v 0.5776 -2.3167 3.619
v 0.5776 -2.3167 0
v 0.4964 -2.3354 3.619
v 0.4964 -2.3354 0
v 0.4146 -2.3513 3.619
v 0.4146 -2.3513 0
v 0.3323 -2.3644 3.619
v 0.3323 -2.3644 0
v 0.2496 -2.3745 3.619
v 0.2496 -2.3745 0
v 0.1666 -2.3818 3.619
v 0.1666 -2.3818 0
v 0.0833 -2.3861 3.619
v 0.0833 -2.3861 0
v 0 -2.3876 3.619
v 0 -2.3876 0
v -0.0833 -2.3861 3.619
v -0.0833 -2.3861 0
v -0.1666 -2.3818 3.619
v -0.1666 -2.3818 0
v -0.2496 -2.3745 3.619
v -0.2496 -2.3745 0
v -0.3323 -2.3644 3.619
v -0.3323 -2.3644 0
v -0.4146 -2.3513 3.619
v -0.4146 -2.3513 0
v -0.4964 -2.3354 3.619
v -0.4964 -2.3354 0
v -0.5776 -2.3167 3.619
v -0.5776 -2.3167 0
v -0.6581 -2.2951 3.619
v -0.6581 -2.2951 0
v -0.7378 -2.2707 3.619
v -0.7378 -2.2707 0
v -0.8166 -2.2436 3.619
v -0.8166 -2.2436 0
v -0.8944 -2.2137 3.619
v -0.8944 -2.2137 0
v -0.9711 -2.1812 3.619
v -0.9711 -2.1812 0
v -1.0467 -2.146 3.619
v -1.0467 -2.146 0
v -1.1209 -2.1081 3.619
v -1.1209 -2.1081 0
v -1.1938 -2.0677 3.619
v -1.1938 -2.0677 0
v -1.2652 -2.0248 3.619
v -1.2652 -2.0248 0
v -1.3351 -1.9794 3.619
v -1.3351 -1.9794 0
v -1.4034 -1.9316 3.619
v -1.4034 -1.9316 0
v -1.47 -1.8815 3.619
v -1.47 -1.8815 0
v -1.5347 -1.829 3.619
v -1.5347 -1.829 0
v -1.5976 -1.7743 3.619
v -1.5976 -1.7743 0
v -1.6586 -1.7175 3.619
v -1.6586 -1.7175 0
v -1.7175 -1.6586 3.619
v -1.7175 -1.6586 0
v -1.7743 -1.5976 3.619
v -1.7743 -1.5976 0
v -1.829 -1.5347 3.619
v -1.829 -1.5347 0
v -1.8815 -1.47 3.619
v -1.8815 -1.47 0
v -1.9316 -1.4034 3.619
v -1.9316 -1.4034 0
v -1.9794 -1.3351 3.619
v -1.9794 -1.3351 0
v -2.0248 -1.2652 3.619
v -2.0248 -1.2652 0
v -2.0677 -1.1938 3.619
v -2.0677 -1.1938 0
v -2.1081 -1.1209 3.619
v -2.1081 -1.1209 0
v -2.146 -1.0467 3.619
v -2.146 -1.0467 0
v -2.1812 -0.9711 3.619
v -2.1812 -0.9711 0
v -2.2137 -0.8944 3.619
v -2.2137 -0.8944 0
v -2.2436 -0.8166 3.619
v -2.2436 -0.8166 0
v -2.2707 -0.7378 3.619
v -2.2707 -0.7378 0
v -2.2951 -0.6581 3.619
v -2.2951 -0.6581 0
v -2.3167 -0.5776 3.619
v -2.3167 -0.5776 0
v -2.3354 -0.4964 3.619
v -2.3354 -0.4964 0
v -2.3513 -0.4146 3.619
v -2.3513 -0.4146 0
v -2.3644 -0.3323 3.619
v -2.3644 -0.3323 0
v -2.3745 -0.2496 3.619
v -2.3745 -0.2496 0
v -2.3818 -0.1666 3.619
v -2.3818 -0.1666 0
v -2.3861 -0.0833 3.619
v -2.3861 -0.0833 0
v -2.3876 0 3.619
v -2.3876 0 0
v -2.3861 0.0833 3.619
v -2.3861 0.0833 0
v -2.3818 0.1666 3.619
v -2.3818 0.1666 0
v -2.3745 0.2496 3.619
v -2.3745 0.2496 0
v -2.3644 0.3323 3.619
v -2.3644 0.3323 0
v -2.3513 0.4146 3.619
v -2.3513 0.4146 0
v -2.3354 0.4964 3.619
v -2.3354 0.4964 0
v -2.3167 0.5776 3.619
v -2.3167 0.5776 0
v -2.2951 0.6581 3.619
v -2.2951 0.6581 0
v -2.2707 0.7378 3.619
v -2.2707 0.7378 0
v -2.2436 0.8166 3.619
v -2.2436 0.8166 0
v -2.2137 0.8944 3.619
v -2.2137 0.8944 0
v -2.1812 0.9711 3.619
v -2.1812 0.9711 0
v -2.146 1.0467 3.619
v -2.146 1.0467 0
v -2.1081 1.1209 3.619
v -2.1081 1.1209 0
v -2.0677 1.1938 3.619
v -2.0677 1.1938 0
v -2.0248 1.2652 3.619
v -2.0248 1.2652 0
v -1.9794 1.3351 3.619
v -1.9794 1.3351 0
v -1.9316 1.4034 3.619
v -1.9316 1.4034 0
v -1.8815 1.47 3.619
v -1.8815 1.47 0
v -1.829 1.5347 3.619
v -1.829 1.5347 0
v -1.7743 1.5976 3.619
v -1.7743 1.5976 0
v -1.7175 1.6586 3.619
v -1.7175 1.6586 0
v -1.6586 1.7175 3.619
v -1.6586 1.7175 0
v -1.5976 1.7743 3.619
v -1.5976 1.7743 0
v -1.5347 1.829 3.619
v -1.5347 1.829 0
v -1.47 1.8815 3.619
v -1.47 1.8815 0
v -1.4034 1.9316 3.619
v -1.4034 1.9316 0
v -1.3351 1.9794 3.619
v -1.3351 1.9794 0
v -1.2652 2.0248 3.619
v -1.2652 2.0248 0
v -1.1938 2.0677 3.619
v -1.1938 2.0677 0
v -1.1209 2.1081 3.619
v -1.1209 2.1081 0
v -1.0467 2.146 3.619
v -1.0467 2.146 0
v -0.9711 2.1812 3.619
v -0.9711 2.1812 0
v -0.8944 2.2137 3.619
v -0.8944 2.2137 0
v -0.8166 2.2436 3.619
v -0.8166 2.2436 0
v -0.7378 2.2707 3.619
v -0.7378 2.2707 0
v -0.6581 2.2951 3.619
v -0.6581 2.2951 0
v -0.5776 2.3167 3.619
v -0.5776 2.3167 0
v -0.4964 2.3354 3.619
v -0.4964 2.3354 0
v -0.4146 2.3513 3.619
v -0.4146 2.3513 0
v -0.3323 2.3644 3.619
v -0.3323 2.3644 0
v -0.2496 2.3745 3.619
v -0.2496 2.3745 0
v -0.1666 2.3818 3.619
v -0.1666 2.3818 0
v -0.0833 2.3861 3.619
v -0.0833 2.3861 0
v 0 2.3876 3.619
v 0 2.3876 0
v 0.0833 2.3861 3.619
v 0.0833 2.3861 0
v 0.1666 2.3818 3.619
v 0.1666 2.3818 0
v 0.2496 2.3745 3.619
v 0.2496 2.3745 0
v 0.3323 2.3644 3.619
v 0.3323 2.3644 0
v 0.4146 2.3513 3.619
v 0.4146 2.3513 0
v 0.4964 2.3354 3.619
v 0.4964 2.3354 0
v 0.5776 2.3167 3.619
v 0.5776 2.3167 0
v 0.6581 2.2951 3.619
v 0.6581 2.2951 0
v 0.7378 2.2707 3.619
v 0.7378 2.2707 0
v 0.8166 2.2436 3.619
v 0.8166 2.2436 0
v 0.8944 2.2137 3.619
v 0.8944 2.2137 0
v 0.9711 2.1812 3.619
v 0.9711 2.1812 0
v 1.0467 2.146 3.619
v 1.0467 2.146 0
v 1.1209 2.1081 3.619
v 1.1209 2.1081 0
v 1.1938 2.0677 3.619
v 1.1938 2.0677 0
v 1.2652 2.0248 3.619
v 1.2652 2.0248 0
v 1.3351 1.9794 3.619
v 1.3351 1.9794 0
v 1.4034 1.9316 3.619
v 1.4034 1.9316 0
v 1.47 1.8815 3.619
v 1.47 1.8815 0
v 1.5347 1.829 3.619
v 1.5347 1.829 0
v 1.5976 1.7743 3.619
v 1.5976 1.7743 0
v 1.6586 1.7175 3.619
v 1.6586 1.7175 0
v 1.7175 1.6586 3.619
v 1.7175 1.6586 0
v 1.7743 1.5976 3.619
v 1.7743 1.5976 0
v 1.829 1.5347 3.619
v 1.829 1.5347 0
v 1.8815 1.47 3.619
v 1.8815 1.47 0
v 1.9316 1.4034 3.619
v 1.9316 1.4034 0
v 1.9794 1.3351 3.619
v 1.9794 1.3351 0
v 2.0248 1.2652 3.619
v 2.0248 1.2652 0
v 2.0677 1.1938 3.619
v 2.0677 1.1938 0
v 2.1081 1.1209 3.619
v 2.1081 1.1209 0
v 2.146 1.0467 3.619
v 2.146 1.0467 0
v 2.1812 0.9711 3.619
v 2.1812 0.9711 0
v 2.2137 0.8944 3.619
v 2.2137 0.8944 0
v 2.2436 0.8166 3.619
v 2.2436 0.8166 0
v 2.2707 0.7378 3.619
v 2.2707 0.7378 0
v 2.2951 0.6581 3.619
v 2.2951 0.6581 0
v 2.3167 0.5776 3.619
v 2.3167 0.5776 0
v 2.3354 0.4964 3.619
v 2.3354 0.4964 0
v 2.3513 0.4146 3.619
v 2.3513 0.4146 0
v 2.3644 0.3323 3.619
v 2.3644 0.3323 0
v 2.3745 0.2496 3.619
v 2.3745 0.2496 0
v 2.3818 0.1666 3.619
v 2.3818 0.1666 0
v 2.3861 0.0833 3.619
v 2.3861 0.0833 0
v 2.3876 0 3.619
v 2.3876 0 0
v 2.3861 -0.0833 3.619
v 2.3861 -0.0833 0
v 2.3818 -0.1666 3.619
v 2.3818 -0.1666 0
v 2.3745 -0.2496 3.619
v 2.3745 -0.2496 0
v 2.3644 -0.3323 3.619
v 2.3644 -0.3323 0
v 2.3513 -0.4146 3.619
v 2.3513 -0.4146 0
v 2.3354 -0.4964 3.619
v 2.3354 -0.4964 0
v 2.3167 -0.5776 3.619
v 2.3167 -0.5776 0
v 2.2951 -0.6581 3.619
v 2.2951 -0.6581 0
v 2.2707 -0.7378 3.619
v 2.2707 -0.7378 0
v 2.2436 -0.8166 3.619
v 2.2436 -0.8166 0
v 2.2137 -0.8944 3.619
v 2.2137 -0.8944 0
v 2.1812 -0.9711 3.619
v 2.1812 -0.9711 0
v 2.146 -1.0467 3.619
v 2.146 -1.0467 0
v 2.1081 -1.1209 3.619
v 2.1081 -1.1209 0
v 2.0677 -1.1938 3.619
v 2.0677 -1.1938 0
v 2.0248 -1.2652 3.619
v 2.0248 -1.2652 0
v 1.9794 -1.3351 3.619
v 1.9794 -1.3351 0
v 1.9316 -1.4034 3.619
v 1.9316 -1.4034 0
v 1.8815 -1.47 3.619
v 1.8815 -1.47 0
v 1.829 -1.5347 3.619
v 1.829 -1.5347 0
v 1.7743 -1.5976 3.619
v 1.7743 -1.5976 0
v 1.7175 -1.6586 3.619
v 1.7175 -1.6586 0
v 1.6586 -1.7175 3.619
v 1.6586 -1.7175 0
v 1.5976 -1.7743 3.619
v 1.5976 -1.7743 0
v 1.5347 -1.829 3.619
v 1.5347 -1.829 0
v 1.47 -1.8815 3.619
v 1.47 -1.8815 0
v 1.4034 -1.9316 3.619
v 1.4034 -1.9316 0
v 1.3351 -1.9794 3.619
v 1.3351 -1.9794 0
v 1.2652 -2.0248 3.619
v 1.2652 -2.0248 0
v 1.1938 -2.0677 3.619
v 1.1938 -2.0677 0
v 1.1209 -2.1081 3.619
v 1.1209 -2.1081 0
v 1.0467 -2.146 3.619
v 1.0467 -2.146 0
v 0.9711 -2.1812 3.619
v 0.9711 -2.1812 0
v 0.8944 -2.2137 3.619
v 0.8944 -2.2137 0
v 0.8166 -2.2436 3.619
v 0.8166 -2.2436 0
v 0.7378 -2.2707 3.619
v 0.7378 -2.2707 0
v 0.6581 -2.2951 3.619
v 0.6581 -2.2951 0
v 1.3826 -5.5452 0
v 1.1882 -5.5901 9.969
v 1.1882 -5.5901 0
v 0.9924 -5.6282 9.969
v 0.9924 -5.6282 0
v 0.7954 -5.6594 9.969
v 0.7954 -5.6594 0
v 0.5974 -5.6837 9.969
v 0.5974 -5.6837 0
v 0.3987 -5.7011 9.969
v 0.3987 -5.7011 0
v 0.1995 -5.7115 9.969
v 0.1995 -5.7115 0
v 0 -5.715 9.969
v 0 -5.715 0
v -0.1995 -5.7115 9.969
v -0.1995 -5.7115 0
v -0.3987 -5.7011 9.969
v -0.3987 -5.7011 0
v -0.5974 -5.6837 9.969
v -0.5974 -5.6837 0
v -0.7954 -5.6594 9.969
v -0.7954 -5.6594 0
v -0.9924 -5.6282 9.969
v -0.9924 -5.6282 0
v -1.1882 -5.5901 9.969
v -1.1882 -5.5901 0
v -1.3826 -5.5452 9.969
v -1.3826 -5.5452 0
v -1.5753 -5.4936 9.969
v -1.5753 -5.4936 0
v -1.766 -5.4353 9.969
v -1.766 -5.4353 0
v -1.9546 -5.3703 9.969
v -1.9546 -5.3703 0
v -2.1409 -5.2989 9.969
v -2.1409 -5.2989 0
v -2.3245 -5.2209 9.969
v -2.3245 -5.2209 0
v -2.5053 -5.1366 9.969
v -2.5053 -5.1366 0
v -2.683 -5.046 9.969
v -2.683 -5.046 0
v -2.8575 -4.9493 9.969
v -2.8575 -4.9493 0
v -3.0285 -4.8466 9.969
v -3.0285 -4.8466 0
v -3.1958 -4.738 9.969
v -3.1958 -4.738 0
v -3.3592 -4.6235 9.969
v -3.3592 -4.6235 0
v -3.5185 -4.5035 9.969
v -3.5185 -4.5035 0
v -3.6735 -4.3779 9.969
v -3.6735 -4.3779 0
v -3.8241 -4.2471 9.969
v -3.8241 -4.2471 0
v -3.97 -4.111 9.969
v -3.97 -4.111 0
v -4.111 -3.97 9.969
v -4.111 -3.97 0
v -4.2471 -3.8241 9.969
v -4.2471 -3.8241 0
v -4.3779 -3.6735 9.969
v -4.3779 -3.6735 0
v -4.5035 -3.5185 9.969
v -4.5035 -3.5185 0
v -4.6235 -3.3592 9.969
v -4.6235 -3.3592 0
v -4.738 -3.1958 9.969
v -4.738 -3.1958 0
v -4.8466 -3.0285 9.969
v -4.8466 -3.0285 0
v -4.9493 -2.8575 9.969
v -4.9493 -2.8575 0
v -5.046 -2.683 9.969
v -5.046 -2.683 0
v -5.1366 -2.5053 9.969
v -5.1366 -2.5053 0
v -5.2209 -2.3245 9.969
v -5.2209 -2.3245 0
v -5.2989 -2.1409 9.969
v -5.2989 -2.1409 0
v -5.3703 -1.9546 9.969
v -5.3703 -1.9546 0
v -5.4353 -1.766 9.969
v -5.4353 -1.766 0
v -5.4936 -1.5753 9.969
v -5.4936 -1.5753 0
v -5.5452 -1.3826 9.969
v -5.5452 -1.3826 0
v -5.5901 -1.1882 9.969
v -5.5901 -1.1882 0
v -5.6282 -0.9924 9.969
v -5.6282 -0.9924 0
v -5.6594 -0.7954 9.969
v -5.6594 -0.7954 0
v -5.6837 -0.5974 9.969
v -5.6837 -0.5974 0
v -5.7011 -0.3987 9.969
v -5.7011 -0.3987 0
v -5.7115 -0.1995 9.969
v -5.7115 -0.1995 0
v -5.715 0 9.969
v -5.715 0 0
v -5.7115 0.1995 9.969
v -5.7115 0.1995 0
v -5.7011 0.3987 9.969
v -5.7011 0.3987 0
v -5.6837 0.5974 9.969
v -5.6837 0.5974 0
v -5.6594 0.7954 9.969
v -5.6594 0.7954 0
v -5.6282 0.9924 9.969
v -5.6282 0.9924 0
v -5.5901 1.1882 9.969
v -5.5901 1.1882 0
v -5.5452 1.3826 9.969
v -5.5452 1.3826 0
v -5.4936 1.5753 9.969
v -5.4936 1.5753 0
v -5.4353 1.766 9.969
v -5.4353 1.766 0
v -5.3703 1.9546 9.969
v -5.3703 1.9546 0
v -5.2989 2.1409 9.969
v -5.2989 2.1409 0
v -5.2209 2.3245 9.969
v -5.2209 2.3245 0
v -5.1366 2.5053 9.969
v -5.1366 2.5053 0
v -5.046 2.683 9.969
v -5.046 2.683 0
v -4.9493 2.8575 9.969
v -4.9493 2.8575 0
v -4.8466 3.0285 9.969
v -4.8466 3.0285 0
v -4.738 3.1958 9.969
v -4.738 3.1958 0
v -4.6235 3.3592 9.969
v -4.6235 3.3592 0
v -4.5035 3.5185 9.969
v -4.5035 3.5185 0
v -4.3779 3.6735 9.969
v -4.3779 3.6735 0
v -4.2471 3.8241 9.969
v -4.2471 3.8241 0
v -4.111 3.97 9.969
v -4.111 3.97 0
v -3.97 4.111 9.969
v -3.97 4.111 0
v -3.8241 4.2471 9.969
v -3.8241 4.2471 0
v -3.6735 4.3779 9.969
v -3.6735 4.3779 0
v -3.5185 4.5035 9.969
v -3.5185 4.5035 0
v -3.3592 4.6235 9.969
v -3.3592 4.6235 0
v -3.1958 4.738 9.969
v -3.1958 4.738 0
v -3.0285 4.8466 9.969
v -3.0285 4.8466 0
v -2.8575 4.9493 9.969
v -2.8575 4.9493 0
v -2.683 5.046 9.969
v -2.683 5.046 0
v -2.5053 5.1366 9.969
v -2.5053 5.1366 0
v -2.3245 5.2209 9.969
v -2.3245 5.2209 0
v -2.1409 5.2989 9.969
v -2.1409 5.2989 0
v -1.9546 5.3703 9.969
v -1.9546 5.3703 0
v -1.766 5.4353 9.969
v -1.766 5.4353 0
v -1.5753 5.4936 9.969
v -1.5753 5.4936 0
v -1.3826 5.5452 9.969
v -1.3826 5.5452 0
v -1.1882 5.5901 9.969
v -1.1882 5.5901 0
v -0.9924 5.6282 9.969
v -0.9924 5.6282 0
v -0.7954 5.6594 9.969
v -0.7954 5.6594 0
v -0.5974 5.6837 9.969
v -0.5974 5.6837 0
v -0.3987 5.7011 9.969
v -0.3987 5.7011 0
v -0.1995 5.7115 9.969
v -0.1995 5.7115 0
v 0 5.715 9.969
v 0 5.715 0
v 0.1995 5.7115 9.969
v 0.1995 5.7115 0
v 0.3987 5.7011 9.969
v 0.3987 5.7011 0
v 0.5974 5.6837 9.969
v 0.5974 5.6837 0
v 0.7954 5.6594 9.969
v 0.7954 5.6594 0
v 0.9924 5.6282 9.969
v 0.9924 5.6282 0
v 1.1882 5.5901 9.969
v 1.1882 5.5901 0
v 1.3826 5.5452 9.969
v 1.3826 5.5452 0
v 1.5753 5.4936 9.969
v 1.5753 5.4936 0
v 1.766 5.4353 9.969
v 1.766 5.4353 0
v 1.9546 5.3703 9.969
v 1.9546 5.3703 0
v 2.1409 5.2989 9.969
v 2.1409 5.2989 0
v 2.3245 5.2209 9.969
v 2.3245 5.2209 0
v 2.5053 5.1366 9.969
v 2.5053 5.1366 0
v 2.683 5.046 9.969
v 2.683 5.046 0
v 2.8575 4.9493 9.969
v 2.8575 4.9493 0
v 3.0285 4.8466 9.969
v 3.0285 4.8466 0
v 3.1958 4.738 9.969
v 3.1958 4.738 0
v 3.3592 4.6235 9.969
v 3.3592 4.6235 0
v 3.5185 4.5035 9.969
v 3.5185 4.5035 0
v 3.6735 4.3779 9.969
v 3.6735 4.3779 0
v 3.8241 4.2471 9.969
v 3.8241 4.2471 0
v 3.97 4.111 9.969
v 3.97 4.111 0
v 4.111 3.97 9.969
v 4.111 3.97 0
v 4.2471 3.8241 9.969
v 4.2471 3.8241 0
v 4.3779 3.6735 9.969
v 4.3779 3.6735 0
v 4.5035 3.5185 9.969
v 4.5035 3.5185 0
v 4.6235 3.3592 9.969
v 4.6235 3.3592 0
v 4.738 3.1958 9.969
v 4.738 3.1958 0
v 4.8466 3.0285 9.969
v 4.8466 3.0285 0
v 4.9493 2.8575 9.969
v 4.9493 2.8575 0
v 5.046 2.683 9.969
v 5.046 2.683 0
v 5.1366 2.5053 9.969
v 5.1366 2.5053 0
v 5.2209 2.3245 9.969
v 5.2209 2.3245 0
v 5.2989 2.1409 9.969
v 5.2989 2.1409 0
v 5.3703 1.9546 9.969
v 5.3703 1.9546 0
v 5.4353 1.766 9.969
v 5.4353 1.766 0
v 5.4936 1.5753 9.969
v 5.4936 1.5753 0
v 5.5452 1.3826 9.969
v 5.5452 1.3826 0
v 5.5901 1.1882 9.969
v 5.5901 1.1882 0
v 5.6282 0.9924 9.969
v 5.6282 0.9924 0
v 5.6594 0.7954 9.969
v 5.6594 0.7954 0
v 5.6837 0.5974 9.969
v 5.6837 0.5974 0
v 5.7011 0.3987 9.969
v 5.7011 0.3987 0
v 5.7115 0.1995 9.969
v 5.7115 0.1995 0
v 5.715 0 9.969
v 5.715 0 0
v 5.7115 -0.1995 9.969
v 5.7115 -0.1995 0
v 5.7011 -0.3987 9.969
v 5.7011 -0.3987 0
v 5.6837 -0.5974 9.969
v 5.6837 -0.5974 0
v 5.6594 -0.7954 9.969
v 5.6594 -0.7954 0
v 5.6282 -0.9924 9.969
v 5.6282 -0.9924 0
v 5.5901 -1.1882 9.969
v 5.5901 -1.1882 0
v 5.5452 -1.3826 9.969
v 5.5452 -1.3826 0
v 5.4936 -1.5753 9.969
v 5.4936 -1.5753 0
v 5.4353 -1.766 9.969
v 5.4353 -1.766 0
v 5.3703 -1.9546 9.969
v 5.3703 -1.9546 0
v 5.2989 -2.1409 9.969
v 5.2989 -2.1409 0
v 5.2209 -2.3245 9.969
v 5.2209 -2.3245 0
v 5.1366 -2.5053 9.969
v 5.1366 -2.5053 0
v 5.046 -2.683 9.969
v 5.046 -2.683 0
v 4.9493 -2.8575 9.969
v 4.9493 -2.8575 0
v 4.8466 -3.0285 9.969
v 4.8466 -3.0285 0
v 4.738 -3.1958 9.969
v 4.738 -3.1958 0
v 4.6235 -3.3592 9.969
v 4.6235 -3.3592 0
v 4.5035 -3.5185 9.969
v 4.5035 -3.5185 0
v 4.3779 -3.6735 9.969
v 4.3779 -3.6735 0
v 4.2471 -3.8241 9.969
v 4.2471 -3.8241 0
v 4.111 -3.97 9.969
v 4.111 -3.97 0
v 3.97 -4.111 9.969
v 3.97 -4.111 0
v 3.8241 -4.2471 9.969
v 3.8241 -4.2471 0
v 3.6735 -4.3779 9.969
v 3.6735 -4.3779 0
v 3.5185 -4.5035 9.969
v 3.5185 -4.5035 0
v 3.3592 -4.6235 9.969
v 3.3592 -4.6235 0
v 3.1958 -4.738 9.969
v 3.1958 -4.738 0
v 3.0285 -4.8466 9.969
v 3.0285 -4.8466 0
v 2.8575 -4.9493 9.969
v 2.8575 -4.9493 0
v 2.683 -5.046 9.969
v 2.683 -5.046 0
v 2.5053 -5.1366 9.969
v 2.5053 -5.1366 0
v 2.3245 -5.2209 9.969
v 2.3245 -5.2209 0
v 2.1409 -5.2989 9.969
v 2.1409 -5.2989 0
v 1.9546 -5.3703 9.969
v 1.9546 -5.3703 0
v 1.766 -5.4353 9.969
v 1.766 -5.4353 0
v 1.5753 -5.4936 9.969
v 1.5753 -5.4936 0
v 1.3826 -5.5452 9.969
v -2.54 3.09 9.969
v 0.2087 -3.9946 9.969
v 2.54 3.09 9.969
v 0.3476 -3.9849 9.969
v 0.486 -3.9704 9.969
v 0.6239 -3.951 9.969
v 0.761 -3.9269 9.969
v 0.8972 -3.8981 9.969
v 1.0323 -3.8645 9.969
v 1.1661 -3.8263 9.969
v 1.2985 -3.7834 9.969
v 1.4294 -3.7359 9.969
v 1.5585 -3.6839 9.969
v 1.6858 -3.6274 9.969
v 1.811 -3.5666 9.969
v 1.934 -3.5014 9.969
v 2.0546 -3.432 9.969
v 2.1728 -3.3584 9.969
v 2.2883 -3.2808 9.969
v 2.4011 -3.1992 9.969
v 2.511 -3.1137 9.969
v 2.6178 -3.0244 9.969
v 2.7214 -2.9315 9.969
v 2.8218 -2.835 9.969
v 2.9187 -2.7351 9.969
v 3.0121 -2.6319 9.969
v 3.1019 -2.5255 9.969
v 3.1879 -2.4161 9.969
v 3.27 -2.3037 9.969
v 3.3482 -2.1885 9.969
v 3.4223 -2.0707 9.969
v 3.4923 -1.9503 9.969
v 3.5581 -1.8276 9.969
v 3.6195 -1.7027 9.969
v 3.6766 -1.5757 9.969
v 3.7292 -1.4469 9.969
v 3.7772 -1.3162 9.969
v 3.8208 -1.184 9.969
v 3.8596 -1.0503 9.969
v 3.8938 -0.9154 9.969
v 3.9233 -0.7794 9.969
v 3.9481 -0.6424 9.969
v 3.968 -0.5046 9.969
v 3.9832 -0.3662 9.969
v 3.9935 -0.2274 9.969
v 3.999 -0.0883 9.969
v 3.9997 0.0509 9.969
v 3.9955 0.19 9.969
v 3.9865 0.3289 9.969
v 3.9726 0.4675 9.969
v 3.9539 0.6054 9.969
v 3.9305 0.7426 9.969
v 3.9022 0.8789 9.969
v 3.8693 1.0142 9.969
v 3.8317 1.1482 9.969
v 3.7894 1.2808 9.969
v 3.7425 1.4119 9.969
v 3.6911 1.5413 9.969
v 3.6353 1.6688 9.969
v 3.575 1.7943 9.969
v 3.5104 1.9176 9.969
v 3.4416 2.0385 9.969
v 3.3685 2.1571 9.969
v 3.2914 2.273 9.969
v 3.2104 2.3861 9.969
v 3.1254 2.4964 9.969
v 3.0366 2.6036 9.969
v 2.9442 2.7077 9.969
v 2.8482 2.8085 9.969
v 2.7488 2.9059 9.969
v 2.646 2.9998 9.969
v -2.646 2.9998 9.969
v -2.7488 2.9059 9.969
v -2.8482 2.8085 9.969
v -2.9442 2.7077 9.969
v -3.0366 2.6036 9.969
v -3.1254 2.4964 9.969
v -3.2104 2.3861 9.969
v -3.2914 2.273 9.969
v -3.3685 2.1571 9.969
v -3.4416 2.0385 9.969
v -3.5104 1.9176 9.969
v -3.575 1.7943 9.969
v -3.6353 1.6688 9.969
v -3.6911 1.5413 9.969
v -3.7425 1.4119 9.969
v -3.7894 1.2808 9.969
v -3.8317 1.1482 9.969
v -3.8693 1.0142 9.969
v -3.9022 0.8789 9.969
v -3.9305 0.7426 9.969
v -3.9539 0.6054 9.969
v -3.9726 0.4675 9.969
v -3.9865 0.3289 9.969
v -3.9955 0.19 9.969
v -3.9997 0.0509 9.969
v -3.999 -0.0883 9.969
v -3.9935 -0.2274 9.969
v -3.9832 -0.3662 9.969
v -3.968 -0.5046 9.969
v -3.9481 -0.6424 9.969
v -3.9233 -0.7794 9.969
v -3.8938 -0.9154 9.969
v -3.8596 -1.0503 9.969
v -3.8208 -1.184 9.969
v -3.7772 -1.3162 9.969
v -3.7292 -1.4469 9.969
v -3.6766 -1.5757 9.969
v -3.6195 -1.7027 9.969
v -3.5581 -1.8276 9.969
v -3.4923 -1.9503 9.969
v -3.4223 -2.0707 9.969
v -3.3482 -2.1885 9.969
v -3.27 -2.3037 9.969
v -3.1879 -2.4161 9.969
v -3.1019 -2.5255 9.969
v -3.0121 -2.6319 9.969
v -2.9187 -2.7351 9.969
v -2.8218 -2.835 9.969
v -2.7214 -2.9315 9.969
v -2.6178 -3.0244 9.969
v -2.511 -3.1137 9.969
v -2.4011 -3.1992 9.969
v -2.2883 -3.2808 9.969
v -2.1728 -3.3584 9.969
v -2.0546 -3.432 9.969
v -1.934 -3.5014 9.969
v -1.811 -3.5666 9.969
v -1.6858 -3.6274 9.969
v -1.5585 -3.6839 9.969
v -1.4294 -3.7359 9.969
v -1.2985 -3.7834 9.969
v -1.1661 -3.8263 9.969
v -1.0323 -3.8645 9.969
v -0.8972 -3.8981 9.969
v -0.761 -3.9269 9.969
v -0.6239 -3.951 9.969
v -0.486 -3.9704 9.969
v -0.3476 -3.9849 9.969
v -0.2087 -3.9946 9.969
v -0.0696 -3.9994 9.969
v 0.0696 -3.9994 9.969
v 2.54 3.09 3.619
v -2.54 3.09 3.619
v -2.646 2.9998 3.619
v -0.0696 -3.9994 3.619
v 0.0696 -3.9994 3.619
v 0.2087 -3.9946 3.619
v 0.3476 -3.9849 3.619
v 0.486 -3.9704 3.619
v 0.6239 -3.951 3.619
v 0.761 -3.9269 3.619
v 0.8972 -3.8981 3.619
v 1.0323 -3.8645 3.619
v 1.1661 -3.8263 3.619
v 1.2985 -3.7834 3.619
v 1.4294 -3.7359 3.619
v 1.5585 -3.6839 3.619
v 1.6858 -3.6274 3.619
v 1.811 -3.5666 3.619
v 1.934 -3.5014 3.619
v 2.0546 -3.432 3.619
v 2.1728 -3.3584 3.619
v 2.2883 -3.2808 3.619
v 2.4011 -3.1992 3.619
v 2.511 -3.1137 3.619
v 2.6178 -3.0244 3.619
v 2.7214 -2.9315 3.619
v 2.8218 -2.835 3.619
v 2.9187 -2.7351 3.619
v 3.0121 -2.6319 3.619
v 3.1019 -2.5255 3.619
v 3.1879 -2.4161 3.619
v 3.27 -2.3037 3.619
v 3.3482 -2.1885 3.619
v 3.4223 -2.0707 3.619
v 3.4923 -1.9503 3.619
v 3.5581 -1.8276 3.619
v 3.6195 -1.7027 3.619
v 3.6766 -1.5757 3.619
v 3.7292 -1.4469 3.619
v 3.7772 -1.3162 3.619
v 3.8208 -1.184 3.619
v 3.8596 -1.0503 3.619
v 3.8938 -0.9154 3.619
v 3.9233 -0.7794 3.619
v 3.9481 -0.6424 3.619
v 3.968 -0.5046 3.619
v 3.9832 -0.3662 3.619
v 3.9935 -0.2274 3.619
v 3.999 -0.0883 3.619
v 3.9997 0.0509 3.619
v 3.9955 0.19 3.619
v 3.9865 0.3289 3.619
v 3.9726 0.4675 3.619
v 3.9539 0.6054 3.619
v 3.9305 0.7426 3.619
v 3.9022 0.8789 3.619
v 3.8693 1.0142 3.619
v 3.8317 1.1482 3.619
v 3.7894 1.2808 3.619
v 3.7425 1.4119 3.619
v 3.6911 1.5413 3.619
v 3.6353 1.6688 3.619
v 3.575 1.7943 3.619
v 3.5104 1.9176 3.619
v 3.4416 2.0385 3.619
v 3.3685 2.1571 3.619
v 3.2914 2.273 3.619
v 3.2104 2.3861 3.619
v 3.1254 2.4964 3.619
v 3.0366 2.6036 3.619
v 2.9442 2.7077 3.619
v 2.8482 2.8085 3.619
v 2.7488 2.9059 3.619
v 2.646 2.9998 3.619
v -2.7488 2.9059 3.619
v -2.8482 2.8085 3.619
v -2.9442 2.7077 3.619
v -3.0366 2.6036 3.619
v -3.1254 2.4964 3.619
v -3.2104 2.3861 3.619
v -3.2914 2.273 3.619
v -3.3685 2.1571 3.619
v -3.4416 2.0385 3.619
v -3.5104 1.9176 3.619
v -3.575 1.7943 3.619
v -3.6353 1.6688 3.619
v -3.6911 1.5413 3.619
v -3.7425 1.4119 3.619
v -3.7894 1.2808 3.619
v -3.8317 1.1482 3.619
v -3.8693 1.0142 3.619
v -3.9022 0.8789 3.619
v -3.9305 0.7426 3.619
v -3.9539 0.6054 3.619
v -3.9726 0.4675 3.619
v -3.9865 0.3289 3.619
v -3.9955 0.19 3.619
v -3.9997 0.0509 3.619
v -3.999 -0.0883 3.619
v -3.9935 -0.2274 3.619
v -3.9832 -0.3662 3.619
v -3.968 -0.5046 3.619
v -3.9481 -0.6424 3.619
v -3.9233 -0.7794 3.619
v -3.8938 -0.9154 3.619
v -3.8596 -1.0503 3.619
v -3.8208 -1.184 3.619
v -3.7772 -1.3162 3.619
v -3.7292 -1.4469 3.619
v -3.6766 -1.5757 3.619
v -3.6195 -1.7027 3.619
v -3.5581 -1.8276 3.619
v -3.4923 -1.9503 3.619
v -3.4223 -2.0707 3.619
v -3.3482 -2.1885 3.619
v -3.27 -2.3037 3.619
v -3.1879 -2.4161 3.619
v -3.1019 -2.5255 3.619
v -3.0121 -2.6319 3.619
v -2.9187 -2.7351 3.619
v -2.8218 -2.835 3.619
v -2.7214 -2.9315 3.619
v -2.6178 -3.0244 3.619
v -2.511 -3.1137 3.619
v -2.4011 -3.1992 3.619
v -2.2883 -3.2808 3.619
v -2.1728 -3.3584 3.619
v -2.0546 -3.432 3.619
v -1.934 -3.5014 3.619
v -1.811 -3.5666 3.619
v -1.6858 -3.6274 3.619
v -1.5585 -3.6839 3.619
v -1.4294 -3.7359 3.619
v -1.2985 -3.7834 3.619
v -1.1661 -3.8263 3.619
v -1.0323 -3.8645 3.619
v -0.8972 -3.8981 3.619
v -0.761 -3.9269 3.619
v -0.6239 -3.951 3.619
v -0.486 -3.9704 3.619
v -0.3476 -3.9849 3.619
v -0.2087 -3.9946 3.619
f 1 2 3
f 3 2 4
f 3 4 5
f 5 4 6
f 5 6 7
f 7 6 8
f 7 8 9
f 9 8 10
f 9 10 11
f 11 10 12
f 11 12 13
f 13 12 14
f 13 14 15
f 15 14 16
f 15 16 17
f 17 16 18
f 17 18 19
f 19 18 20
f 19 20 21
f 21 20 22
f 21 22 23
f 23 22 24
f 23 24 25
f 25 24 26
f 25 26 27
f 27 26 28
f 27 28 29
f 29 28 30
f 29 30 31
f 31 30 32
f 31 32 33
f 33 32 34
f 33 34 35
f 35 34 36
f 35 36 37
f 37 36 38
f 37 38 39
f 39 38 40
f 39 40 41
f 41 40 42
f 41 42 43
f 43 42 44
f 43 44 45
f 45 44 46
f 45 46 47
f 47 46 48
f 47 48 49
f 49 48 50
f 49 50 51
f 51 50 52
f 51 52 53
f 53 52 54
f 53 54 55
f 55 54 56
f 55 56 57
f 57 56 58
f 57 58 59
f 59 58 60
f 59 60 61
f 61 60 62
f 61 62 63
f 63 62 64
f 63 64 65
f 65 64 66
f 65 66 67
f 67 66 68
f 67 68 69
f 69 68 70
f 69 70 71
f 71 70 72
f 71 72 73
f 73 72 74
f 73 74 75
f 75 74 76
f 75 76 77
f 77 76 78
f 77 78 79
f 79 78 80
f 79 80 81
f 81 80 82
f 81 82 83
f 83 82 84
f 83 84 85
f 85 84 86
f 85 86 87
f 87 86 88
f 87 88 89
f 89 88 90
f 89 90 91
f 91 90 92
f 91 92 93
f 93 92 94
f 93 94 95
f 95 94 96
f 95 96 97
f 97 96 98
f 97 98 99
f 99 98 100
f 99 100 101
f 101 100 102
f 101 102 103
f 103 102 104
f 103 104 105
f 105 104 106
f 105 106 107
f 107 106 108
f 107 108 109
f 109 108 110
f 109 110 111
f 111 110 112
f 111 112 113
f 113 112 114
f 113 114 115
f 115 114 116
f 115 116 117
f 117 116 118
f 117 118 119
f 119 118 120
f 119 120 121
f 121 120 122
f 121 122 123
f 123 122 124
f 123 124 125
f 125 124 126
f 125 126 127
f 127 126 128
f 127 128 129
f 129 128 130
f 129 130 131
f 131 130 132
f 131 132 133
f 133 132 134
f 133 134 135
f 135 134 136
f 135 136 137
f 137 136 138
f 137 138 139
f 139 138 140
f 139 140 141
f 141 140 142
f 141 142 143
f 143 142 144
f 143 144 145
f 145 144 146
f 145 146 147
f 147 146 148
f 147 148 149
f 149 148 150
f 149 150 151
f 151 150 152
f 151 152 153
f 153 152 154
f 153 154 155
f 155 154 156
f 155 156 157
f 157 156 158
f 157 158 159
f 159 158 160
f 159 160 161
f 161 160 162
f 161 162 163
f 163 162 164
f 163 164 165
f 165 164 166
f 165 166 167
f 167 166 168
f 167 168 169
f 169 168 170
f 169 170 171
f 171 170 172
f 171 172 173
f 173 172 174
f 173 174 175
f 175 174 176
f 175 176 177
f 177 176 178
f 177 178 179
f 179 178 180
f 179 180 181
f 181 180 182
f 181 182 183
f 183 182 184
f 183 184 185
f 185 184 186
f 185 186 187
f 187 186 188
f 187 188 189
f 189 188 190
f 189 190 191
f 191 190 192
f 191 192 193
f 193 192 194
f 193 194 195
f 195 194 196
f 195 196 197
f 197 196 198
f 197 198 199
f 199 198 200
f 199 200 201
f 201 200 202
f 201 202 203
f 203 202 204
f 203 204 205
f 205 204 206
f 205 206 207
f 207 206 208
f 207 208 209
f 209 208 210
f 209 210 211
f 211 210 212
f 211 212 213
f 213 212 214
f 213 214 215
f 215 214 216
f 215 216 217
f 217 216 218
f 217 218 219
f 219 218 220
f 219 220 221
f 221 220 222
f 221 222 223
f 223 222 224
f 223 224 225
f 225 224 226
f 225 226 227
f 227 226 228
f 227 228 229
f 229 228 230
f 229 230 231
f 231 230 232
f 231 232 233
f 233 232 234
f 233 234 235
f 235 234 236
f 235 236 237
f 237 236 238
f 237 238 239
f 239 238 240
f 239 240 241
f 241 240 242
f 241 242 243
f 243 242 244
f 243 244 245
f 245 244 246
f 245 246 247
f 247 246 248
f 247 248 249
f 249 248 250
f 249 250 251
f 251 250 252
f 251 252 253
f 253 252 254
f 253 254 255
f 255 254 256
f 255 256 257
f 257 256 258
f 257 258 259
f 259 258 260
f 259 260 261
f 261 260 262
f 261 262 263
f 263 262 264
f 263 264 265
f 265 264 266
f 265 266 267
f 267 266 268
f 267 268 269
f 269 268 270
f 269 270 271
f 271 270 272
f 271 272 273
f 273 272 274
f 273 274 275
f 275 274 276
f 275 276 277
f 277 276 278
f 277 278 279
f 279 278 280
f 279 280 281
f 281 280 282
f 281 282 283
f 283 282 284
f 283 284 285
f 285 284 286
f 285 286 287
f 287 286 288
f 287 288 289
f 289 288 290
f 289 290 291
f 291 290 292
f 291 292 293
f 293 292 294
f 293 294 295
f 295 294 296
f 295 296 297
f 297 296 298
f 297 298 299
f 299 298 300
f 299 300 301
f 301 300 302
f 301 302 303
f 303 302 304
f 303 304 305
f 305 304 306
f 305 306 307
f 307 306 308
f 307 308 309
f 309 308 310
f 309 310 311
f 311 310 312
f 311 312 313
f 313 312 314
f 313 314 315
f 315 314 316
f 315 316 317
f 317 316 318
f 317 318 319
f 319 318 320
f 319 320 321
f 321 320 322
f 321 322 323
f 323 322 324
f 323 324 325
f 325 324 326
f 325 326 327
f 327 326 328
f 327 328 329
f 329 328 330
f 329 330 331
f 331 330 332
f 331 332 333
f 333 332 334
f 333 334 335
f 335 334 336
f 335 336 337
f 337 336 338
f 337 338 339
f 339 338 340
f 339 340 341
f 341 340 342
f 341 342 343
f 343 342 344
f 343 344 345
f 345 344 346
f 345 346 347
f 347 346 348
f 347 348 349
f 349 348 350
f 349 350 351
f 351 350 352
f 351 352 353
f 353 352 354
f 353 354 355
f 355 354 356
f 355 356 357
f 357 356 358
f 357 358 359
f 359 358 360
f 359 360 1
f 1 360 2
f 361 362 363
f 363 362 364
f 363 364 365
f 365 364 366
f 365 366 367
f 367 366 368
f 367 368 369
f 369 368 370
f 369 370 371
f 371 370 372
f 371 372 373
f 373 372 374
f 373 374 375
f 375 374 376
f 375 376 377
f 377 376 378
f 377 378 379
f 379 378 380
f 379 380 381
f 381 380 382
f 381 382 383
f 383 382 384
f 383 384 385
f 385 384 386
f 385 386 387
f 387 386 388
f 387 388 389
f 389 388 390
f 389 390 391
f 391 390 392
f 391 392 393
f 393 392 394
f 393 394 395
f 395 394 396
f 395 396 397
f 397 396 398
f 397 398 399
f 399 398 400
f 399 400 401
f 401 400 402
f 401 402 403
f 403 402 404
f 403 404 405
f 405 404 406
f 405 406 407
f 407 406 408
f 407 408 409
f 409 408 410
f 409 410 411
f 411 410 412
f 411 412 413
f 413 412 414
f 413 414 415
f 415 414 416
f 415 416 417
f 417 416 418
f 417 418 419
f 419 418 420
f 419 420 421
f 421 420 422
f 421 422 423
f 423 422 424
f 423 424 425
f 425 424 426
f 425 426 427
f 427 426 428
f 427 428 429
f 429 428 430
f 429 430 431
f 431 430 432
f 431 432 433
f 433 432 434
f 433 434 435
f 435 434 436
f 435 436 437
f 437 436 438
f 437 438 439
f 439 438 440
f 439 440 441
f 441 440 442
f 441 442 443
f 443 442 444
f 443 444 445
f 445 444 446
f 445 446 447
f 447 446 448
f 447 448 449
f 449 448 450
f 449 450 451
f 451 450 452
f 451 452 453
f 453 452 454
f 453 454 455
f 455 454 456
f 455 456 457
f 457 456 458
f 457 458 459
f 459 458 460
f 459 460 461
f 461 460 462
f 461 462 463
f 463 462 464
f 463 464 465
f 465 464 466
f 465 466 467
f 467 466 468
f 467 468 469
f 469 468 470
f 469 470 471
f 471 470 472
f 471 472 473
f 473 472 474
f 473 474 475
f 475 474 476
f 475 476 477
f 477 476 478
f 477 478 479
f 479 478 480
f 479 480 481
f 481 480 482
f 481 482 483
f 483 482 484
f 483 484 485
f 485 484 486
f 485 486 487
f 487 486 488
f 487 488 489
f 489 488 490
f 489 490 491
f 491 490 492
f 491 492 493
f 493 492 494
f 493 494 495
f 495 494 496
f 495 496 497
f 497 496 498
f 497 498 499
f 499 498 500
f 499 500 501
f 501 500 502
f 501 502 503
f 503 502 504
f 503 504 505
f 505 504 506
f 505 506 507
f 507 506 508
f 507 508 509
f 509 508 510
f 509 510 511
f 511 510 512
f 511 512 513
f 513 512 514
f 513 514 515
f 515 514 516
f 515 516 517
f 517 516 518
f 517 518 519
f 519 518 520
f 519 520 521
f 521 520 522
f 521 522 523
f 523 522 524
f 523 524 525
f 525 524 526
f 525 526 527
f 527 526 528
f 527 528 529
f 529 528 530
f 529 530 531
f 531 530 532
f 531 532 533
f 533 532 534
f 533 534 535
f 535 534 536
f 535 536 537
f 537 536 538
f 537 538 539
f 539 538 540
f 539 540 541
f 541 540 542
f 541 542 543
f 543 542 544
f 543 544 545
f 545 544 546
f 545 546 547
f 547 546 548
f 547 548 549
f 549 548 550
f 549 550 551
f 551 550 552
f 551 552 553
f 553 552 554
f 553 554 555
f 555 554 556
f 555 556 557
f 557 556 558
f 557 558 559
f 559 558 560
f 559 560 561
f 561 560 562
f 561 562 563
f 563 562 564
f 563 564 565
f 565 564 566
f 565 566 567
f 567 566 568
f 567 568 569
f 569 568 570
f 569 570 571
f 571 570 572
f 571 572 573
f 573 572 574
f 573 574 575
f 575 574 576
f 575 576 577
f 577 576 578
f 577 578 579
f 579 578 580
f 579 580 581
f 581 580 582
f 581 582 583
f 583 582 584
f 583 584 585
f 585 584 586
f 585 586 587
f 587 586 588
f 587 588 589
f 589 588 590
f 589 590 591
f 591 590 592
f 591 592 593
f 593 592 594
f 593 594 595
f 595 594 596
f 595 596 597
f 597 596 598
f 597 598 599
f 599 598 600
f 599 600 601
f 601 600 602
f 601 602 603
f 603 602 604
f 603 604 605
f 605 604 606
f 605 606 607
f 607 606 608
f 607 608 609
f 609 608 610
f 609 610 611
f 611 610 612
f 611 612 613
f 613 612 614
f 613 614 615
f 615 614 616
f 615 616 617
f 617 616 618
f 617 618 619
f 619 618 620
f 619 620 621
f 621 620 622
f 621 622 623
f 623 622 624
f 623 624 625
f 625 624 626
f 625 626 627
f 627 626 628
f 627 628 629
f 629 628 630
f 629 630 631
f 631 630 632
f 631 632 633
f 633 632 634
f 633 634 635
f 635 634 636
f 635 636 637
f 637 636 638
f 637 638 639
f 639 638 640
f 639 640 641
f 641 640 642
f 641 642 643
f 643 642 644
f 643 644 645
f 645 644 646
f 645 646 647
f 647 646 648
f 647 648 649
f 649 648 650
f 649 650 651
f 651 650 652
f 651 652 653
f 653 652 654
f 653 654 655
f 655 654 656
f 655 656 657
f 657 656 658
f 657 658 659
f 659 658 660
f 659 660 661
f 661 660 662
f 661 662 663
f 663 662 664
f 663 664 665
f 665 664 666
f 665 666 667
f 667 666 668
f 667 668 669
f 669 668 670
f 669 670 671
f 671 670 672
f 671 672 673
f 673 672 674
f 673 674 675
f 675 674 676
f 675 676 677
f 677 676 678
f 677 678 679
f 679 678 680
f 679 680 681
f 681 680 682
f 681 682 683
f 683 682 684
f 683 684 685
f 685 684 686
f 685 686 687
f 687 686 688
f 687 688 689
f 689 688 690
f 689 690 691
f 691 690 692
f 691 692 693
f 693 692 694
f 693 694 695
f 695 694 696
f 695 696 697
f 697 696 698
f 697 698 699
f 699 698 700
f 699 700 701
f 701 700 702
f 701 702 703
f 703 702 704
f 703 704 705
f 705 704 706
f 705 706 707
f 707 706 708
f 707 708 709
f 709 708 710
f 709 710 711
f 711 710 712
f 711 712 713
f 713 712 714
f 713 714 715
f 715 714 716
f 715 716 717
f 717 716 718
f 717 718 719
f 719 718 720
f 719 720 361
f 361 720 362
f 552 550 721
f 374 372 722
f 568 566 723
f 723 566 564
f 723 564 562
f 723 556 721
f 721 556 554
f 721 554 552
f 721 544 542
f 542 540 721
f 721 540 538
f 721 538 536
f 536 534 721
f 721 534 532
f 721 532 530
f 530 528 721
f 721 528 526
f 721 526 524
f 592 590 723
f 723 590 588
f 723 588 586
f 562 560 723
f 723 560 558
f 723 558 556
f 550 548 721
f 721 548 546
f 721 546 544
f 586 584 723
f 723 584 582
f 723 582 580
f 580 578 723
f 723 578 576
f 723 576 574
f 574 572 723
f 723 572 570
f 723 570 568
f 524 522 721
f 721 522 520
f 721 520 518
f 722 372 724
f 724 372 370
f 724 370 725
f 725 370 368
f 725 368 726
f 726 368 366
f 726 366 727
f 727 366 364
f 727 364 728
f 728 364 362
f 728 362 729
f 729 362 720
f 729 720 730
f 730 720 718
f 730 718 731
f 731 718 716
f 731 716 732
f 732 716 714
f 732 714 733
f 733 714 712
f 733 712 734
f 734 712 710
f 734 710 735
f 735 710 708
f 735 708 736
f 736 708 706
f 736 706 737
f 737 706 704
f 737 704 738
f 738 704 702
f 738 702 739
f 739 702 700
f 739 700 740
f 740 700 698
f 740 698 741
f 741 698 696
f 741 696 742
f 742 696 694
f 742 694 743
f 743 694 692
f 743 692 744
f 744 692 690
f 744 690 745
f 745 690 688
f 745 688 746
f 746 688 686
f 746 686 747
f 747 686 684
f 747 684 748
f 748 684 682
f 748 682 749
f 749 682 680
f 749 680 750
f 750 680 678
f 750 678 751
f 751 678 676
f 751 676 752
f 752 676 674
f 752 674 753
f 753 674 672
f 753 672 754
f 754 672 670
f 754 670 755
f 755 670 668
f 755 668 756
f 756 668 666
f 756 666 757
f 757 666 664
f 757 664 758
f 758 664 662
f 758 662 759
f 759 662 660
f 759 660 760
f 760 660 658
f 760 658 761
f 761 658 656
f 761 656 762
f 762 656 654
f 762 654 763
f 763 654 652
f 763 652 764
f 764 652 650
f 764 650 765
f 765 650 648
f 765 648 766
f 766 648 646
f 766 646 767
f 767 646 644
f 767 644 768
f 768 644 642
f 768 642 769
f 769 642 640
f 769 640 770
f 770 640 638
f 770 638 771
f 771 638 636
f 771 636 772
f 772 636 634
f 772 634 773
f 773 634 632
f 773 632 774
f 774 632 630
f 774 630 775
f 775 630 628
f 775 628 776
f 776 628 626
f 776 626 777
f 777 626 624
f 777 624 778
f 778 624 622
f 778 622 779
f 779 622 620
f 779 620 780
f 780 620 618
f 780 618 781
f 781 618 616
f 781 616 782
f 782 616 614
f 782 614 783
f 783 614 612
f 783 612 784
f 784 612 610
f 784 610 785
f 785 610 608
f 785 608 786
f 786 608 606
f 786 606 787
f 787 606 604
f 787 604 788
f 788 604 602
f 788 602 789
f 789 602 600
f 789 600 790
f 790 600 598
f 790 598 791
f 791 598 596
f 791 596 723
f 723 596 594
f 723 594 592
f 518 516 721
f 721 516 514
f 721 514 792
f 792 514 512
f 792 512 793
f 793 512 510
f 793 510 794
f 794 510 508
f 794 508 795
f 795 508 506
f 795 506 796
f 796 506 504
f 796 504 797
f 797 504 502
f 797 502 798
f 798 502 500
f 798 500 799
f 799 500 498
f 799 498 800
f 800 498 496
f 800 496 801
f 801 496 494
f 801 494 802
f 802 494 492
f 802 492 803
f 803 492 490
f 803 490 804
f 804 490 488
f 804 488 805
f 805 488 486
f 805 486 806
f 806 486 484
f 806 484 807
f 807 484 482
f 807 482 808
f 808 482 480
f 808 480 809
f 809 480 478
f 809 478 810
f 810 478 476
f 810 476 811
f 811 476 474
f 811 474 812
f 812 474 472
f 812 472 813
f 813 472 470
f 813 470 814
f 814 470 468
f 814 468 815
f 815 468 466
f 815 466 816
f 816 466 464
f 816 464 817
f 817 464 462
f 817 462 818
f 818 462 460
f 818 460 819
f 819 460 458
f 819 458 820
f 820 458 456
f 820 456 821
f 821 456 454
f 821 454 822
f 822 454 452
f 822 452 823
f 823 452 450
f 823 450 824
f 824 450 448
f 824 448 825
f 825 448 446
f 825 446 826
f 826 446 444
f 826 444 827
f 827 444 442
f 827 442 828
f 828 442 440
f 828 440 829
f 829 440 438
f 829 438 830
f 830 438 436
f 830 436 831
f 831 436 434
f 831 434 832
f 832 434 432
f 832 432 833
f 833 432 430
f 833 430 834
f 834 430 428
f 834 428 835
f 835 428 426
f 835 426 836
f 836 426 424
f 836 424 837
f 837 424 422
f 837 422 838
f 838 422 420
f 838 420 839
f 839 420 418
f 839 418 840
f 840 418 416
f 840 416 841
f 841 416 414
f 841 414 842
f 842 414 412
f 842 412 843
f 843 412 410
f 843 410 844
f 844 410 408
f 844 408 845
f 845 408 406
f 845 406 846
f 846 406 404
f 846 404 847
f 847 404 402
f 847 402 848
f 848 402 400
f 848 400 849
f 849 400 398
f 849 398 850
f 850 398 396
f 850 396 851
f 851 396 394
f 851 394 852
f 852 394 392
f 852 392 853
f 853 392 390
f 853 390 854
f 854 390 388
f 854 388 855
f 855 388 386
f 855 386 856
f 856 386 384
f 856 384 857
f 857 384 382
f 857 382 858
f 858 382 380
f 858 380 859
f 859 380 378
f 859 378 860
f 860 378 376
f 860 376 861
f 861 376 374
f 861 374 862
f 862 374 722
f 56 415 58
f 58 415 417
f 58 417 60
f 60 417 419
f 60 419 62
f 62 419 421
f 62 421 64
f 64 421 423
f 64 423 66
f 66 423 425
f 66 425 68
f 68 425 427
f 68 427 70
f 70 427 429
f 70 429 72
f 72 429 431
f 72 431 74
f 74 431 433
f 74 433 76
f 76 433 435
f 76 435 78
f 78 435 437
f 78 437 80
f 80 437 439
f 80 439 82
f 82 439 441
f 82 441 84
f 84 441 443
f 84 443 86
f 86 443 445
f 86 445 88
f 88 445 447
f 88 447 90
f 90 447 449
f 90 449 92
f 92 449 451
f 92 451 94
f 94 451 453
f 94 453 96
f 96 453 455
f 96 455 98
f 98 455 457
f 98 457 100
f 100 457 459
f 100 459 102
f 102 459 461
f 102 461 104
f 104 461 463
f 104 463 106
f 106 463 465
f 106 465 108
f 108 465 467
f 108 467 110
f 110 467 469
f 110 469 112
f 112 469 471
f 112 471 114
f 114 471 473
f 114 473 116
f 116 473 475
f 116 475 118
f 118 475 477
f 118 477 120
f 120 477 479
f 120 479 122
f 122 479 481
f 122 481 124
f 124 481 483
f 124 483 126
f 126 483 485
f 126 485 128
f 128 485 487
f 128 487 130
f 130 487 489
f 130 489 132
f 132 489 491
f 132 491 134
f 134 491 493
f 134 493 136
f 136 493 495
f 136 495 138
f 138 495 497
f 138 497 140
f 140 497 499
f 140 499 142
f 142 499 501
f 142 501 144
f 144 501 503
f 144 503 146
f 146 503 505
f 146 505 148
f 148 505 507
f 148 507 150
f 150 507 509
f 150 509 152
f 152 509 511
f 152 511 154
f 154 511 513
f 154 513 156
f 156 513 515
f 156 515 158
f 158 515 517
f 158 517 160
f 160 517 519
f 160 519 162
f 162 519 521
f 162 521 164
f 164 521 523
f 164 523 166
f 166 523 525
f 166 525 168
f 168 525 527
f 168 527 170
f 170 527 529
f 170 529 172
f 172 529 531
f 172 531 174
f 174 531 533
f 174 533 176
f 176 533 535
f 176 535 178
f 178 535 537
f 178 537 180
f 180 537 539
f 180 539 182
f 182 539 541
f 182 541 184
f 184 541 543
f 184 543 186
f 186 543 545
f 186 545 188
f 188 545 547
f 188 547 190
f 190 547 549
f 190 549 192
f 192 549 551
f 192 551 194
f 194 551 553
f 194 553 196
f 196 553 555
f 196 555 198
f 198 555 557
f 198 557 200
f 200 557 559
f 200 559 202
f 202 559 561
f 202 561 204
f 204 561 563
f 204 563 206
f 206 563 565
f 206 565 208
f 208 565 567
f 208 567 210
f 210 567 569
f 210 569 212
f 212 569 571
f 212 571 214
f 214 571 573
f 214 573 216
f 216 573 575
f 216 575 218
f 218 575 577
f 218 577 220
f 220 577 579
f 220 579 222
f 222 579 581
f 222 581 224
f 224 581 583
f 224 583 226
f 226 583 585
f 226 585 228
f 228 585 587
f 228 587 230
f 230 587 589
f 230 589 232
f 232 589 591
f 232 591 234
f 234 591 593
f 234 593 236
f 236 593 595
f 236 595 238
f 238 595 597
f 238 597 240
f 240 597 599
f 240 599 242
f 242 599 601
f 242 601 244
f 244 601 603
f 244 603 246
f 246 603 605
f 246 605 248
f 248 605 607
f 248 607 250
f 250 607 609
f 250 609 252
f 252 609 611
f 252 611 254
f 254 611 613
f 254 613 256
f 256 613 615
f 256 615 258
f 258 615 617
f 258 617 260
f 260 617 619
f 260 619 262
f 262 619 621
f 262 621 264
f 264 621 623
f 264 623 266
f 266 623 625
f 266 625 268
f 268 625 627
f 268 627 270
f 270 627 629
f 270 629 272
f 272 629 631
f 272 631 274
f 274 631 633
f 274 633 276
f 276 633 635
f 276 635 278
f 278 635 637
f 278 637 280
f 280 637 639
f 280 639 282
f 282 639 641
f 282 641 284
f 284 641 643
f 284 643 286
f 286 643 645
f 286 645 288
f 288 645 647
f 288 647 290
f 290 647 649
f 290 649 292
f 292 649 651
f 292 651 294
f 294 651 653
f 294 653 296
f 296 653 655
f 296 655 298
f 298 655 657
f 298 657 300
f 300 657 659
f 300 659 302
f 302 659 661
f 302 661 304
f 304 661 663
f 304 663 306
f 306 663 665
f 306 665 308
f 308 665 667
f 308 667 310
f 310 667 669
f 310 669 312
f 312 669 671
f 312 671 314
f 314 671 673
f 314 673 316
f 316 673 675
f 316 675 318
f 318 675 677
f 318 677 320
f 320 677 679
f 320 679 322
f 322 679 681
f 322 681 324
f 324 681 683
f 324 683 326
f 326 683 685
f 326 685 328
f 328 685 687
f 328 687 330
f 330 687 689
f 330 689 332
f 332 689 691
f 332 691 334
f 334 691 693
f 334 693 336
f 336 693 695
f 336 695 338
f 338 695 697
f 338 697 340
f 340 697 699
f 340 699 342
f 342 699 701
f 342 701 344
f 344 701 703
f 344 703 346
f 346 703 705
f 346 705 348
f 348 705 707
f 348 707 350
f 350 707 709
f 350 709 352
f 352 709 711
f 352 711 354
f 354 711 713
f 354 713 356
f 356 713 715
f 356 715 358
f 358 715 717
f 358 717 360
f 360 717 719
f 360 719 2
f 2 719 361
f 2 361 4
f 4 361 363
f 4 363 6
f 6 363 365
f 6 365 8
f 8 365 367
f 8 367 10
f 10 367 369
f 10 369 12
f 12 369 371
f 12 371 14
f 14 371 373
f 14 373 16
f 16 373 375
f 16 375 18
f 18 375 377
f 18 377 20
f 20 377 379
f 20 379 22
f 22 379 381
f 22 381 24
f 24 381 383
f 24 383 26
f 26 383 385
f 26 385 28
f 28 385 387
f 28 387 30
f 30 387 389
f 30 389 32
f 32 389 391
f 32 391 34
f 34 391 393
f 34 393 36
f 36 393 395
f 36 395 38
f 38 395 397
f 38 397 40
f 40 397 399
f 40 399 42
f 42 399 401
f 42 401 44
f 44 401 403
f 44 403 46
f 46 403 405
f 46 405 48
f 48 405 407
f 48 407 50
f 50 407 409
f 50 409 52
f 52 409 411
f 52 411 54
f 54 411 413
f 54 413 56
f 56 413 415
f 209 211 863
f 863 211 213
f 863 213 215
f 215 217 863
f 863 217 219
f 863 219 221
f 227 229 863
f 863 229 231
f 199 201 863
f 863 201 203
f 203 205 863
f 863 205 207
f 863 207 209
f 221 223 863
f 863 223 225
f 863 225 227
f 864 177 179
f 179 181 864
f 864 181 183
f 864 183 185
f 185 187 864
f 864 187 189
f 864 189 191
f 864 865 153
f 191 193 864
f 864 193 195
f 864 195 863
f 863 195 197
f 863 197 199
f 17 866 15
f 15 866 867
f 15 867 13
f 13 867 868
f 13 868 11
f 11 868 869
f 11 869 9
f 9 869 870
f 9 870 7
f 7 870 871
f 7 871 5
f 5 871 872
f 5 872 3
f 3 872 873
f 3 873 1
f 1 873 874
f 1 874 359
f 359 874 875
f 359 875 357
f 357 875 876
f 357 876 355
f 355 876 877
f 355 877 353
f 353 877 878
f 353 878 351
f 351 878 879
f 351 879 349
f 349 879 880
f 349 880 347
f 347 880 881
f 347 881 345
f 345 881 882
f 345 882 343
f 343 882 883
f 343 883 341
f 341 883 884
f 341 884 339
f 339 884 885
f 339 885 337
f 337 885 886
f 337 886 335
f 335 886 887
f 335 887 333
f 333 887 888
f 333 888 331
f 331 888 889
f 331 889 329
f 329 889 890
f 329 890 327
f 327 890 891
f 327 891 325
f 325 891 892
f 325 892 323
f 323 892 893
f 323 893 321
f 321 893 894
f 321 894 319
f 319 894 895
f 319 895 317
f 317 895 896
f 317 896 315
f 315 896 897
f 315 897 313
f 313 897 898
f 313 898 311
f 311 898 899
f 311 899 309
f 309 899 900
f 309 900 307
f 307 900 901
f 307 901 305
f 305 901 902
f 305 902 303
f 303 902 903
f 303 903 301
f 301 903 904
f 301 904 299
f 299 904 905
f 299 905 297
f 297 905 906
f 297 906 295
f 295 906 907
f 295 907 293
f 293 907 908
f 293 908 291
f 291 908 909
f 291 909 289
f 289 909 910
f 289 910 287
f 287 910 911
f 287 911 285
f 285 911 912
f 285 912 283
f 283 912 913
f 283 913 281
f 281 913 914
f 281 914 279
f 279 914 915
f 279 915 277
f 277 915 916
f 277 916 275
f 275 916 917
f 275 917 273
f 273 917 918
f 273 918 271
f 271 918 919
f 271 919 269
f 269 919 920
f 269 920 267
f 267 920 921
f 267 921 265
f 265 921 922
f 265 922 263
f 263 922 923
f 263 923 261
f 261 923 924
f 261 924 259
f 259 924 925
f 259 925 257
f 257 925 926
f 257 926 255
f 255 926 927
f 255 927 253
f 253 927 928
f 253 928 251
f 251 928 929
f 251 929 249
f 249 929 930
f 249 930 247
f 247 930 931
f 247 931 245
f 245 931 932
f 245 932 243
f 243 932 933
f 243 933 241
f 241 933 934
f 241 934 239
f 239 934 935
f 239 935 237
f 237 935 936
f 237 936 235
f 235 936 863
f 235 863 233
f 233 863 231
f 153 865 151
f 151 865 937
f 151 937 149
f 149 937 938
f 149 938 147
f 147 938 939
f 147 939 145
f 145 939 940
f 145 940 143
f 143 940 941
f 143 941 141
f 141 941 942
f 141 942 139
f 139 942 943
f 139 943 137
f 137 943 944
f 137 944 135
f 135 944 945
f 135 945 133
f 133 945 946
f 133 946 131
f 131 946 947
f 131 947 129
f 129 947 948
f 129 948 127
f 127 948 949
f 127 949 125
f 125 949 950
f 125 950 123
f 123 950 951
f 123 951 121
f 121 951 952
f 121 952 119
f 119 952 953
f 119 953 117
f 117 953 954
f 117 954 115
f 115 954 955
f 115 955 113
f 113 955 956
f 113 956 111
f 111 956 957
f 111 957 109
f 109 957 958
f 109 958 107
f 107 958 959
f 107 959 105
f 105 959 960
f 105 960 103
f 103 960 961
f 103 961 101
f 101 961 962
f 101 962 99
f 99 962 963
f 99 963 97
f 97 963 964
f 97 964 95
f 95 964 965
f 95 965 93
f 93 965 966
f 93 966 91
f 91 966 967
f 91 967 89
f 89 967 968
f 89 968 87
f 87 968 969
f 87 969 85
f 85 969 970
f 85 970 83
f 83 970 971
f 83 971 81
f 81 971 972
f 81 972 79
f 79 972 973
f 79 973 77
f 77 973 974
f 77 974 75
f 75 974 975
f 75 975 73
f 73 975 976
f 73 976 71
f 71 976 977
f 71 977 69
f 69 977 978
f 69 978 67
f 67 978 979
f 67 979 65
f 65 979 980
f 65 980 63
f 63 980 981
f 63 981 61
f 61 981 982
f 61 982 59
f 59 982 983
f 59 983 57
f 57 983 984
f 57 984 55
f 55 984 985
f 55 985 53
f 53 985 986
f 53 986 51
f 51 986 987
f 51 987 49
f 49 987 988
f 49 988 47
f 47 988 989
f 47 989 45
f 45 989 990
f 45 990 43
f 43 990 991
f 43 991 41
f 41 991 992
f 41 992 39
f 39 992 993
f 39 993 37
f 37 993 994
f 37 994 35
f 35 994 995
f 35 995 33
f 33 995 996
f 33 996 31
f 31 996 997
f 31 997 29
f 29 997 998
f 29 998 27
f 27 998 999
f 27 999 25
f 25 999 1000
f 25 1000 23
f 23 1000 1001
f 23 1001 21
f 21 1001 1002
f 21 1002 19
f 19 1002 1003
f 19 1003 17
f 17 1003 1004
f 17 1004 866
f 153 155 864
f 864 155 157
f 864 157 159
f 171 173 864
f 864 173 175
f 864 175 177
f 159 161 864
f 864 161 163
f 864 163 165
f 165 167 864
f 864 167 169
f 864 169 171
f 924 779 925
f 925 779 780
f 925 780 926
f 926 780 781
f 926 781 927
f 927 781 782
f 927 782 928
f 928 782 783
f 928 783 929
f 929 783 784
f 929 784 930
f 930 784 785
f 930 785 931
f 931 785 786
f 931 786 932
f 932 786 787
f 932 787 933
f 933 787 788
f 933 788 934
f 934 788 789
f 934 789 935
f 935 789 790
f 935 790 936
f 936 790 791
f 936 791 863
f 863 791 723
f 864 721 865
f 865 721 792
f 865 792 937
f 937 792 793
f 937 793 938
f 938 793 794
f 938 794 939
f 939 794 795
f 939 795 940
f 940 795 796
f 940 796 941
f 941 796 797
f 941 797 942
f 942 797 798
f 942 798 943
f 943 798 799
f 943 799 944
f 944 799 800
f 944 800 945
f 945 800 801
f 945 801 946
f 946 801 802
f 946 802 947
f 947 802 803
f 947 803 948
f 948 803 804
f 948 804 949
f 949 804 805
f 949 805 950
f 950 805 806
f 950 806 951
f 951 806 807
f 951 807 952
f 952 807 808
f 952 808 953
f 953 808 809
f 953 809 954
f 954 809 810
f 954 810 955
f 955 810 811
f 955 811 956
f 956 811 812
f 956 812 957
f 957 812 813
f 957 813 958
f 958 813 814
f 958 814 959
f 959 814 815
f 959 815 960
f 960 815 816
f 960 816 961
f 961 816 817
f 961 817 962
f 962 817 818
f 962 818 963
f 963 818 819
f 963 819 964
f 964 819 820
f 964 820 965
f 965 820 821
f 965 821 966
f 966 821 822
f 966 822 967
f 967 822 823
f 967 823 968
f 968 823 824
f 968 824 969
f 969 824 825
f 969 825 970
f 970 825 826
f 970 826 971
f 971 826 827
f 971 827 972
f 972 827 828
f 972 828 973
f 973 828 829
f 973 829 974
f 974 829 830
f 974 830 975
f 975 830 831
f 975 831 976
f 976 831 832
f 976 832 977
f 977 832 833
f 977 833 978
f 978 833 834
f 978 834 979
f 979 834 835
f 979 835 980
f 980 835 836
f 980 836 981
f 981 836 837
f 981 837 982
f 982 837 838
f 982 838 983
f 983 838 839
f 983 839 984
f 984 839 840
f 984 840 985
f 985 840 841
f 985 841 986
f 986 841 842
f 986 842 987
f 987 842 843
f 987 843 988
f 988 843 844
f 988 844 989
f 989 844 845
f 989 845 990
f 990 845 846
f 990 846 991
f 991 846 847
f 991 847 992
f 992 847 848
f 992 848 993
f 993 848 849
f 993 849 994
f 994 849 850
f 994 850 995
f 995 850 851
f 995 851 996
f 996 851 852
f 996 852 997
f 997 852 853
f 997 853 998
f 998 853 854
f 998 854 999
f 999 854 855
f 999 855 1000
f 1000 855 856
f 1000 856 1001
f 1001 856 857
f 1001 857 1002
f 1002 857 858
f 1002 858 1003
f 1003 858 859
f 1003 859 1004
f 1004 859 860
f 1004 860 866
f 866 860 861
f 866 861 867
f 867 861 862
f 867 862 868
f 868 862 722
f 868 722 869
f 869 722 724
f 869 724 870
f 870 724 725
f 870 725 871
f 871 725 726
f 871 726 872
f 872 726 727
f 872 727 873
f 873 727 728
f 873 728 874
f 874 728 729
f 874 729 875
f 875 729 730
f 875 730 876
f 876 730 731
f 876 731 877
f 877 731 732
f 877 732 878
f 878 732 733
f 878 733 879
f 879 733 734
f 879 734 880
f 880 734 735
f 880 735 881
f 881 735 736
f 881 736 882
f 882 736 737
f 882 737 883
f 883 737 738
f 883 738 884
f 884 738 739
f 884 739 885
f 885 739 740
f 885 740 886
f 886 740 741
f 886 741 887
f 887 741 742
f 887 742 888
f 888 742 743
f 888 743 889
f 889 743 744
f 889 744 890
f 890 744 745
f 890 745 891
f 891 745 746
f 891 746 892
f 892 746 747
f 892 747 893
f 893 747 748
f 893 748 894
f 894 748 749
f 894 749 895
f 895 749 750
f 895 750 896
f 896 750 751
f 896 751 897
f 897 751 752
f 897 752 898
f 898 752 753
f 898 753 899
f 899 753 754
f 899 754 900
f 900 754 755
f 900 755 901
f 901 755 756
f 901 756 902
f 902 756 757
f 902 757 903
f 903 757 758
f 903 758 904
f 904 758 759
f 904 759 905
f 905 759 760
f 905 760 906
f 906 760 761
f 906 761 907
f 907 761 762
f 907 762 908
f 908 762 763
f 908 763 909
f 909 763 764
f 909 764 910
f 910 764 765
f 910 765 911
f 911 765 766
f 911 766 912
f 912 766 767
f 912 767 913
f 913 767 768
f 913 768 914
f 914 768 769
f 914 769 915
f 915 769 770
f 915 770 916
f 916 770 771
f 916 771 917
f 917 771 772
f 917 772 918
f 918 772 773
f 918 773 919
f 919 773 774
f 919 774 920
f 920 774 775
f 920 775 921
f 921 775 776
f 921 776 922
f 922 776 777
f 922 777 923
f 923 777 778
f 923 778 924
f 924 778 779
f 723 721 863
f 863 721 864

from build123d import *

# Parameters (mm, degrees)
SKETCH1_R           = 5.715
BOSS_EXTRUDE1_DEPTH = 9.968992
SKETCH2_R           = 2.3876
CUT_EXTRUDE1_DEPTH  = 10.968992
SKETCH3_R           = 4
CUT_EXTRUDE2_DEPTH  = 6.35
BOSS_EXTRUDE2_DEPTH = 6.35


with BuildPart() as part:
    # Sketch1 → Boss-Extrude1 (new body)
    with BuildSketch(Plane.XY):
        Circle(SKETCH1_R)
    extrude(amount=BOSS_EXTRUDE1_DEPTH)

    # Sketch2 → Cut-Extrude1 (cut, through all)
    with BuildSketch(Plane(origin=(0, 0, 0), x_dir=(-1, 0, 0), z_dir=(0, 0, -1))):
        Circle(SKETCH2_R)
    extrude(amount=-CUT_EXTRUDE1_DEPTH, mode=Mode.SUBTRACT)

    # Sketch3 → Cut-Extrude2 (cut)
    with BuildSketch(Plane.XY.offset(9.968992)):
        Circle(SKETCH3_R)
    extrude(amount=-CUT_EXTRUDE2_DEPTH, mode=Mode.SUBTRACT)

    # Sketch4 → Boss-Extrude2 (add)
    with BuildSketch(Plane.XY.offset(9.968992)):
        with BuildLine():
            Line((2.54, 3.090048543), (-2.54, 3.090048543))
            ThreePointArc((-2.54, 3.090048543), (0, 4), (2.54, 3.090048543))
        make_face()
    extrude(amount=-BOSS_EXTRUDE2_DEPTH)


solid = part.part
